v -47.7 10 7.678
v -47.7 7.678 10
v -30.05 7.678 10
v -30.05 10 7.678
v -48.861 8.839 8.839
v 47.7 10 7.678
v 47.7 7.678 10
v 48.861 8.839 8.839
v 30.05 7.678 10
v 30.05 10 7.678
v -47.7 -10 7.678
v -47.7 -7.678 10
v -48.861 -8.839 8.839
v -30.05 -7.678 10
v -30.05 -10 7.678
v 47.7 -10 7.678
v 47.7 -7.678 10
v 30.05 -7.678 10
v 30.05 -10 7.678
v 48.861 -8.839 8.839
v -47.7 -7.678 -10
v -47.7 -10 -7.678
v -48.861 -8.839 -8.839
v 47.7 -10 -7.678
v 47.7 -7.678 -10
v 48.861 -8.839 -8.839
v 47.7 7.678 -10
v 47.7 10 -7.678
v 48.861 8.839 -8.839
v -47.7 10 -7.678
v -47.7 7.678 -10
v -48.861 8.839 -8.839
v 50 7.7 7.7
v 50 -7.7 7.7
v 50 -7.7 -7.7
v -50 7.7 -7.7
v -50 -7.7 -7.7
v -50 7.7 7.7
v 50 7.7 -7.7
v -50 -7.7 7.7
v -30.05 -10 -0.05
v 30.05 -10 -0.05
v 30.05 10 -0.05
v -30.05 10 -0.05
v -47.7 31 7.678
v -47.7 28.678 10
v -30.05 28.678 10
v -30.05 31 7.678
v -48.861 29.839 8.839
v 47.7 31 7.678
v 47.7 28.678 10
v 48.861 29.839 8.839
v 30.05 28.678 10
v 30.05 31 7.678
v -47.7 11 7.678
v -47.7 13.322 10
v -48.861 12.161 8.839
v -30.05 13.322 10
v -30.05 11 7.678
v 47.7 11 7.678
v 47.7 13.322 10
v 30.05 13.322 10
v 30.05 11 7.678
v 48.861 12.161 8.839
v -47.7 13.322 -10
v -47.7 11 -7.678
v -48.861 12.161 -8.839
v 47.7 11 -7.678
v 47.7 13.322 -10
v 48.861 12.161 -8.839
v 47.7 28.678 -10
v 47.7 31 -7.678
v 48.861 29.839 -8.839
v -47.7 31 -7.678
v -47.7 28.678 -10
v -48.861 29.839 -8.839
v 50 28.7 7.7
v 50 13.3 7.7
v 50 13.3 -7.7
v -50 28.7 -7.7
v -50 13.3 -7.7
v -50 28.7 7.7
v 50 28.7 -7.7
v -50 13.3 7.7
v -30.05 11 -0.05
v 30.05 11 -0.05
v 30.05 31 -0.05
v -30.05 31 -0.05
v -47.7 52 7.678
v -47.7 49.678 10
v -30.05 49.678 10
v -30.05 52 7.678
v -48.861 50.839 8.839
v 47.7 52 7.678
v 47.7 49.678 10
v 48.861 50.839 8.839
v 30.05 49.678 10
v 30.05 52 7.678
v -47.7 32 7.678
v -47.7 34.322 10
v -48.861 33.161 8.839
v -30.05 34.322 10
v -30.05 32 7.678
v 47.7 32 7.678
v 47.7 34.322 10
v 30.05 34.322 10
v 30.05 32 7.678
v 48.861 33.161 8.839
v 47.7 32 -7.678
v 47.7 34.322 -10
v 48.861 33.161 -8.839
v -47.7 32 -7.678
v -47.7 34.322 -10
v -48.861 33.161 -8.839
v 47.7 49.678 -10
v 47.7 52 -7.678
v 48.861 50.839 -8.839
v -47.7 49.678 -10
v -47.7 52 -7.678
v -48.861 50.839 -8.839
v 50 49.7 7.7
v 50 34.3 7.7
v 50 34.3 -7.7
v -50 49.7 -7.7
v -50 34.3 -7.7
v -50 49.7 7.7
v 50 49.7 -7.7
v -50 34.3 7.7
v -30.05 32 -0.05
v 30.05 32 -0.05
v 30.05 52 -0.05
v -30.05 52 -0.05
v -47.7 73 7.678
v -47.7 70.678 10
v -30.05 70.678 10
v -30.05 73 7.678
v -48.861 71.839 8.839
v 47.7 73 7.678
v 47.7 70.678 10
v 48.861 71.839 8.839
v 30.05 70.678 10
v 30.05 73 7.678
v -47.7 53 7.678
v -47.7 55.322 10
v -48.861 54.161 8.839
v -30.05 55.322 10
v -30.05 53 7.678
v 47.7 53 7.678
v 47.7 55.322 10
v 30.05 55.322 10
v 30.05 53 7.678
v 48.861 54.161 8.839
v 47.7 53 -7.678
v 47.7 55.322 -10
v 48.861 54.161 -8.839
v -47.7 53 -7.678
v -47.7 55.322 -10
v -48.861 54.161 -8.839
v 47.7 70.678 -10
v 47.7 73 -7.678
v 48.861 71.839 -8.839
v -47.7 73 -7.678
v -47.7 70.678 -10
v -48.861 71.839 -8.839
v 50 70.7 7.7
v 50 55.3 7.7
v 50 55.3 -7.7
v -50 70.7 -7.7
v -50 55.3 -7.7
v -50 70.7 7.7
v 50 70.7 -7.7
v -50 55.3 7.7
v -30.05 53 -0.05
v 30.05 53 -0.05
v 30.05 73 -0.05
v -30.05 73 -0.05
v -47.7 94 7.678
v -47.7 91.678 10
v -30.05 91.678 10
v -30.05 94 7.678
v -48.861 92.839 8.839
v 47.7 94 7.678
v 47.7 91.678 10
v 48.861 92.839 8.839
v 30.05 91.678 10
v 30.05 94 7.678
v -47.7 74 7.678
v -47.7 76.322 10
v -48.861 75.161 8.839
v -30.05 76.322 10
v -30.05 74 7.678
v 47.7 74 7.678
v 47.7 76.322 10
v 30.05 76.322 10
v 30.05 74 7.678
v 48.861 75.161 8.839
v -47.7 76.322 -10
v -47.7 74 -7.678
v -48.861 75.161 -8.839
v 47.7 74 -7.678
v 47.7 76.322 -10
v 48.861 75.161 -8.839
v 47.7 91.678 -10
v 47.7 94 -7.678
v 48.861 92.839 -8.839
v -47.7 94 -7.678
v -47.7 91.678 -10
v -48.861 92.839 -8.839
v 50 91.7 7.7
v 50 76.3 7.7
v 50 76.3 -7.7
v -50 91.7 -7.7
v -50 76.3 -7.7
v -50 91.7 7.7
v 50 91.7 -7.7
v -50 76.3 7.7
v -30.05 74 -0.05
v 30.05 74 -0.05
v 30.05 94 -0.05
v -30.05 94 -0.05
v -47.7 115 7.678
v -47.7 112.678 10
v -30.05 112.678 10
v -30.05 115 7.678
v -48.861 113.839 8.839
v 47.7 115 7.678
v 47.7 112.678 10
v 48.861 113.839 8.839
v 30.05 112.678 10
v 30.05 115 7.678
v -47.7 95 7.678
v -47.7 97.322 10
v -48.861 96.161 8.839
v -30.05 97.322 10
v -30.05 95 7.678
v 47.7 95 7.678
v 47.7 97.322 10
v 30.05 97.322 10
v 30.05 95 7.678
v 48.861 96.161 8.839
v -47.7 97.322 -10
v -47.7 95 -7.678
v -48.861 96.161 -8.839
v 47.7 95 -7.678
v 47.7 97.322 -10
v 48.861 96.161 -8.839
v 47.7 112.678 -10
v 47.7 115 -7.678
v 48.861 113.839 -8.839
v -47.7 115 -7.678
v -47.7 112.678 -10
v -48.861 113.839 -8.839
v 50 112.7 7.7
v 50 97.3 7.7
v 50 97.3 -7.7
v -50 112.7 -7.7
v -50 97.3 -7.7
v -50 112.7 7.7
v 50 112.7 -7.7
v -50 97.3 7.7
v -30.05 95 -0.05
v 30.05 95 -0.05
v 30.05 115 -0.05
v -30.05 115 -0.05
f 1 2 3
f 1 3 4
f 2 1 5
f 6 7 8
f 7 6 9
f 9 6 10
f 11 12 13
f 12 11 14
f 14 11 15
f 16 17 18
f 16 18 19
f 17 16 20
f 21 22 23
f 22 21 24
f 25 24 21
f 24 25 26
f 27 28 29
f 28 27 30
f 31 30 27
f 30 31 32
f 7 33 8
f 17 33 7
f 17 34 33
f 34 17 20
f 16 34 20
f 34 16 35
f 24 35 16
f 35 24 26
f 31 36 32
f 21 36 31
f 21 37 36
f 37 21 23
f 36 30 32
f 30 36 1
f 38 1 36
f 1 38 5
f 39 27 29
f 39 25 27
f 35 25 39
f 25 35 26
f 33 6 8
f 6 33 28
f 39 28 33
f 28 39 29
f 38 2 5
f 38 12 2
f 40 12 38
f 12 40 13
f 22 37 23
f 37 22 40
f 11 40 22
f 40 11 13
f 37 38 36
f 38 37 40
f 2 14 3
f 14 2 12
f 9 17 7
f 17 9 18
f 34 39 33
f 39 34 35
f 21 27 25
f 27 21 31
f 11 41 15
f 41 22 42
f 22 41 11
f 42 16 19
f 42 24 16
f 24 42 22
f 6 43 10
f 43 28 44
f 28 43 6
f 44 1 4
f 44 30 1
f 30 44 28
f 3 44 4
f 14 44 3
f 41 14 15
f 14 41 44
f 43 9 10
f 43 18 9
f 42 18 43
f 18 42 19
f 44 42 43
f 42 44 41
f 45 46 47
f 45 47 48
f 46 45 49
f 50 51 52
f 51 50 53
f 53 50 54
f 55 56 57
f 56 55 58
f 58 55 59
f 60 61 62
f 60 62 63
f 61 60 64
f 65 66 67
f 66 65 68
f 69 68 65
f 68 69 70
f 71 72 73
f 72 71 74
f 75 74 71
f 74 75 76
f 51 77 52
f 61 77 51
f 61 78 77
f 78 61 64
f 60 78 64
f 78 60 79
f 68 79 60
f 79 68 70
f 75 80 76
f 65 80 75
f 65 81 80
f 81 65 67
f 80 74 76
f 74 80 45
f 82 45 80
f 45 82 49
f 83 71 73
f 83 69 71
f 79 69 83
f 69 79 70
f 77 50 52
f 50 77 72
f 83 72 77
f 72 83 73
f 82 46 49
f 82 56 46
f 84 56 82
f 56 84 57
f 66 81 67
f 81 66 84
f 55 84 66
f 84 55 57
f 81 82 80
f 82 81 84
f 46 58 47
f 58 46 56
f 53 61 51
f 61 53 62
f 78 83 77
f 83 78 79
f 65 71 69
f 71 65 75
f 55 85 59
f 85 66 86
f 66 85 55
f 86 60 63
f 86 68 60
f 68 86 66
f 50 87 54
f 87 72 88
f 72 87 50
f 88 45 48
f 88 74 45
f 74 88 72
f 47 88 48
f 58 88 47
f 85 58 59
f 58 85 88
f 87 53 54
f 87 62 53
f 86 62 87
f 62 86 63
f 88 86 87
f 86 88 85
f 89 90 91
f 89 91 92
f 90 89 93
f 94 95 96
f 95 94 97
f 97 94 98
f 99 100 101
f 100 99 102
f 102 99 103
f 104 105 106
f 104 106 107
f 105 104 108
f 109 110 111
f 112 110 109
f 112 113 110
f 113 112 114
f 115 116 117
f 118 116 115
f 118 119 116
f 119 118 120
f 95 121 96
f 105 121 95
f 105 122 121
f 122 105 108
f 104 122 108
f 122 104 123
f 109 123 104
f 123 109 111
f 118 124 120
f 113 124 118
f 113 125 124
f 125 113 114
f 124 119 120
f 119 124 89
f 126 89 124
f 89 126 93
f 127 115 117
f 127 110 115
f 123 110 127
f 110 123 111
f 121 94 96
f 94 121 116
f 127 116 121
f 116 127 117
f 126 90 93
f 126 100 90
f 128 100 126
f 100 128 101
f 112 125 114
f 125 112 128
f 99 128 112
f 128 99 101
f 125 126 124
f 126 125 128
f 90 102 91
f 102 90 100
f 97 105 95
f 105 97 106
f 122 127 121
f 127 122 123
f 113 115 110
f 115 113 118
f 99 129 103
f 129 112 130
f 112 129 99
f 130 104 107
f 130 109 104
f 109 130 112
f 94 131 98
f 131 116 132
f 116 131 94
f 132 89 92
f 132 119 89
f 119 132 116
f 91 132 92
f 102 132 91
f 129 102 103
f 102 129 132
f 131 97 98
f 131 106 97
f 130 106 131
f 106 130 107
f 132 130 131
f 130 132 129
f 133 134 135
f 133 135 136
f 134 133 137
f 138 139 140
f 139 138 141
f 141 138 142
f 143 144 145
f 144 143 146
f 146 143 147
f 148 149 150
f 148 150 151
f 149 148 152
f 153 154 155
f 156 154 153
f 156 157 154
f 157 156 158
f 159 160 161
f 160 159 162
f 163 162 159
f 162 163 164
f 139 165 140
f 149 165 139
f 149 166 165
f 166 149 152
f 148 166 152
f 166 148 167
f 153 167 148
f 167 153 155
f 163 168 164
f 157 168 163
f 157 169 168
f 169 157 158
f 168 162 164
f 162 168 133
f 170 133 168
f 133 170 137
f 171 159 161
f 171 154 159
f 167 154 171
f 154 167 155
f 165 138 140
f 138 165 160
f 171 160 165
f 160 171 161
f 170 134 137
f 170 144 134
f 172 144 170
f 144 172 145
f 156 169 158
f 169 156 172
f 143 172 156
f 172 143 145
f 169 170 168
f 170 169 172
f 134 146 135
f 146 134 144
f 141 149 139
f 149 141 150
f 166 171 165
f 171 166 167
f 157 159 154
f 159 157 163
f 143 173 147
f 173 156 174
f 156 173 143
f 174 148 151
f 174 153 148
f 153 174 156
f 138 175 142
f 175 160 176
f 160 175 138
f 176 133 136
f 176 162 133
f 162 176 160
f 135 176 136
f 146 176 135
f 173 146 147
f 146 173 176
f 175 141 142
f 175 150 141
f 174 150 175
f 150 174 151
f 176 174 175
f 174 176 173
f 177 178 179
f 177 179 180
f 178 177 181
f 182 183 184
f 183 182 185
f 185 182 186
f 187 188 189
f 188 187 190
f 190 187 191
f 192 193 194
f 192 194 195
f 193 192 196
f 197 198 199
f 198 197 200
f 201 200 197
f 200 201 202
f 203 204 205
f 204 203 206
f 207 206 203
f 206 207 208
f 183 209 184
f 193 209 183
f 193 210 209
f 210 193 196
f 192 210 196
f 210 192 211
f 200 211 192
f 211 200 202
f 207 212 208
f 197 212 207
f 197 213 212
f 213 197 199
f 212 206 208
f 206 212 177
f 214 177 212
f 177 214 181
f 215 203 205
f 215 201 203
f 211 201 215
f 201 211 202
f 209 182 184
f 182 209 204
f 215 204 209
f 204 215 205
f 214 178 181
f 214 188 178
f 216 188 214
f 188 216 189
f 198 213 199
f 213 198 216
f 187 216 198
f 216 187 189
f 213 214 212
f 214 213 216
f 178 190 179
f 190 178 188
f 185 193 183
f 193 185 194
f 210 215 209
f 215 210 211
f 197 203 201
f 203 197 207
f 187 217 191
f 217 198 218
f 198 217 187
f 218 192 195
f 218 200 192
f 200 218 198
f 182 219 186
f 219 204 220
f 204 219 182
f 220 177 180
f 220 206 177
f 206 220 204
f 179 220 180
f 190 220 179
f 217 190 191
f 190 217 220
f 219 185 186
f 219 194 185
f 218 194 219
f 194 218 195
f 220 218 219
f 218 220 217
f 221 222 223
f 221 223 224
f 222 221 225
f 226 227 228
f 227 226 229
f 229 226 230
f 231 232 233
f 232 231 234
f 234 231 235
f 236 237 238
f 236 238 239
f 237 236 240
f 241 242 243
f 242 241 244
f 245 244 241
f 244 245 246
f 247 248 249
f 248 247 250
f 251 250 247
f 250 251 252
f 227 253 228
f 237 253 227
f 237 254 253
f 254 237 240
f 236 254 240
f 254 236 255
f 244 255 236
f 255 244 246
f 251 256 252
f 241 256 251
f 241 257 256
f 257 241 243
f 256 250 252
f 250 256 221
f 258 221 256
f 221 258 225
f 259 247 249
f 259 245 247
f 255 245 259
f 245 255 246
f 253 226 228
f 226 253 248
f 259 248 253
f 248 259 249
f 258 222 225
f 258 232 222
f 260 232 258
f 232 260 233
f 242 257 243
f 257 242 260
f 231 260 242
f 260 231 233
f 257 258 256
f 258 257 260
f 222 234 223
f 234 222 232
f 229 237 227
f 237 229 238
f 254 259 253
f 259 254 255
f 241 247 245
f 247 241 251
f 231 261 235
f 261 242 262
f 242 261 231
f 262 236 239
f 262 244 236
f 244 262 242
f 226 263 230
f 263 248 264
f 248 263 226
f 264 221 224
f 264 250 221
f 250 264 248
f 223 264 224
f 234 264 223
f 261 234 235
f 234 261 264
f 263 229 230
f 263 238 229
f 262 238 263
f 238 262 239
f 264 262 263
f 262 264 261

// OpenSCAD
module barre(jeu=0.05) {
    difference() {
        cube([100,20,20], center=true);
        translate([0,0,5]) cube([60+jeu*2,30+jeu*2,10+jeu*2], center=true);
        for (i=[0:3]) {
            rotate([45+i*90,0,0]) translate([0,15,0]) cube([101,5,5], center=true);
        }
        for (i=[-1,1], j=[0,2],k=[0,1]) {
            rotate([k*90,0,0]) rotate([0,45*i+90*j,0]) translate([43.3,0,28*i]) cube([5,21,5], center=true);
        }
    }
}

module barrePercee(jeu=0.05) {
    difference() {
        barre(jeu);
        translate([-10,-5,-5]) cube([20+jeu*2,10+jeu*2,10+jeu*2], center=true);
    }
}

module bank(x=0) {
    for (y=[0:5]) {
        if (x==0 &&  y==0) {
            barrePercee();
        } else
        translate([0,y*21,0]) barre();
    }
}

// bank(x=0);
bank(x=1);
